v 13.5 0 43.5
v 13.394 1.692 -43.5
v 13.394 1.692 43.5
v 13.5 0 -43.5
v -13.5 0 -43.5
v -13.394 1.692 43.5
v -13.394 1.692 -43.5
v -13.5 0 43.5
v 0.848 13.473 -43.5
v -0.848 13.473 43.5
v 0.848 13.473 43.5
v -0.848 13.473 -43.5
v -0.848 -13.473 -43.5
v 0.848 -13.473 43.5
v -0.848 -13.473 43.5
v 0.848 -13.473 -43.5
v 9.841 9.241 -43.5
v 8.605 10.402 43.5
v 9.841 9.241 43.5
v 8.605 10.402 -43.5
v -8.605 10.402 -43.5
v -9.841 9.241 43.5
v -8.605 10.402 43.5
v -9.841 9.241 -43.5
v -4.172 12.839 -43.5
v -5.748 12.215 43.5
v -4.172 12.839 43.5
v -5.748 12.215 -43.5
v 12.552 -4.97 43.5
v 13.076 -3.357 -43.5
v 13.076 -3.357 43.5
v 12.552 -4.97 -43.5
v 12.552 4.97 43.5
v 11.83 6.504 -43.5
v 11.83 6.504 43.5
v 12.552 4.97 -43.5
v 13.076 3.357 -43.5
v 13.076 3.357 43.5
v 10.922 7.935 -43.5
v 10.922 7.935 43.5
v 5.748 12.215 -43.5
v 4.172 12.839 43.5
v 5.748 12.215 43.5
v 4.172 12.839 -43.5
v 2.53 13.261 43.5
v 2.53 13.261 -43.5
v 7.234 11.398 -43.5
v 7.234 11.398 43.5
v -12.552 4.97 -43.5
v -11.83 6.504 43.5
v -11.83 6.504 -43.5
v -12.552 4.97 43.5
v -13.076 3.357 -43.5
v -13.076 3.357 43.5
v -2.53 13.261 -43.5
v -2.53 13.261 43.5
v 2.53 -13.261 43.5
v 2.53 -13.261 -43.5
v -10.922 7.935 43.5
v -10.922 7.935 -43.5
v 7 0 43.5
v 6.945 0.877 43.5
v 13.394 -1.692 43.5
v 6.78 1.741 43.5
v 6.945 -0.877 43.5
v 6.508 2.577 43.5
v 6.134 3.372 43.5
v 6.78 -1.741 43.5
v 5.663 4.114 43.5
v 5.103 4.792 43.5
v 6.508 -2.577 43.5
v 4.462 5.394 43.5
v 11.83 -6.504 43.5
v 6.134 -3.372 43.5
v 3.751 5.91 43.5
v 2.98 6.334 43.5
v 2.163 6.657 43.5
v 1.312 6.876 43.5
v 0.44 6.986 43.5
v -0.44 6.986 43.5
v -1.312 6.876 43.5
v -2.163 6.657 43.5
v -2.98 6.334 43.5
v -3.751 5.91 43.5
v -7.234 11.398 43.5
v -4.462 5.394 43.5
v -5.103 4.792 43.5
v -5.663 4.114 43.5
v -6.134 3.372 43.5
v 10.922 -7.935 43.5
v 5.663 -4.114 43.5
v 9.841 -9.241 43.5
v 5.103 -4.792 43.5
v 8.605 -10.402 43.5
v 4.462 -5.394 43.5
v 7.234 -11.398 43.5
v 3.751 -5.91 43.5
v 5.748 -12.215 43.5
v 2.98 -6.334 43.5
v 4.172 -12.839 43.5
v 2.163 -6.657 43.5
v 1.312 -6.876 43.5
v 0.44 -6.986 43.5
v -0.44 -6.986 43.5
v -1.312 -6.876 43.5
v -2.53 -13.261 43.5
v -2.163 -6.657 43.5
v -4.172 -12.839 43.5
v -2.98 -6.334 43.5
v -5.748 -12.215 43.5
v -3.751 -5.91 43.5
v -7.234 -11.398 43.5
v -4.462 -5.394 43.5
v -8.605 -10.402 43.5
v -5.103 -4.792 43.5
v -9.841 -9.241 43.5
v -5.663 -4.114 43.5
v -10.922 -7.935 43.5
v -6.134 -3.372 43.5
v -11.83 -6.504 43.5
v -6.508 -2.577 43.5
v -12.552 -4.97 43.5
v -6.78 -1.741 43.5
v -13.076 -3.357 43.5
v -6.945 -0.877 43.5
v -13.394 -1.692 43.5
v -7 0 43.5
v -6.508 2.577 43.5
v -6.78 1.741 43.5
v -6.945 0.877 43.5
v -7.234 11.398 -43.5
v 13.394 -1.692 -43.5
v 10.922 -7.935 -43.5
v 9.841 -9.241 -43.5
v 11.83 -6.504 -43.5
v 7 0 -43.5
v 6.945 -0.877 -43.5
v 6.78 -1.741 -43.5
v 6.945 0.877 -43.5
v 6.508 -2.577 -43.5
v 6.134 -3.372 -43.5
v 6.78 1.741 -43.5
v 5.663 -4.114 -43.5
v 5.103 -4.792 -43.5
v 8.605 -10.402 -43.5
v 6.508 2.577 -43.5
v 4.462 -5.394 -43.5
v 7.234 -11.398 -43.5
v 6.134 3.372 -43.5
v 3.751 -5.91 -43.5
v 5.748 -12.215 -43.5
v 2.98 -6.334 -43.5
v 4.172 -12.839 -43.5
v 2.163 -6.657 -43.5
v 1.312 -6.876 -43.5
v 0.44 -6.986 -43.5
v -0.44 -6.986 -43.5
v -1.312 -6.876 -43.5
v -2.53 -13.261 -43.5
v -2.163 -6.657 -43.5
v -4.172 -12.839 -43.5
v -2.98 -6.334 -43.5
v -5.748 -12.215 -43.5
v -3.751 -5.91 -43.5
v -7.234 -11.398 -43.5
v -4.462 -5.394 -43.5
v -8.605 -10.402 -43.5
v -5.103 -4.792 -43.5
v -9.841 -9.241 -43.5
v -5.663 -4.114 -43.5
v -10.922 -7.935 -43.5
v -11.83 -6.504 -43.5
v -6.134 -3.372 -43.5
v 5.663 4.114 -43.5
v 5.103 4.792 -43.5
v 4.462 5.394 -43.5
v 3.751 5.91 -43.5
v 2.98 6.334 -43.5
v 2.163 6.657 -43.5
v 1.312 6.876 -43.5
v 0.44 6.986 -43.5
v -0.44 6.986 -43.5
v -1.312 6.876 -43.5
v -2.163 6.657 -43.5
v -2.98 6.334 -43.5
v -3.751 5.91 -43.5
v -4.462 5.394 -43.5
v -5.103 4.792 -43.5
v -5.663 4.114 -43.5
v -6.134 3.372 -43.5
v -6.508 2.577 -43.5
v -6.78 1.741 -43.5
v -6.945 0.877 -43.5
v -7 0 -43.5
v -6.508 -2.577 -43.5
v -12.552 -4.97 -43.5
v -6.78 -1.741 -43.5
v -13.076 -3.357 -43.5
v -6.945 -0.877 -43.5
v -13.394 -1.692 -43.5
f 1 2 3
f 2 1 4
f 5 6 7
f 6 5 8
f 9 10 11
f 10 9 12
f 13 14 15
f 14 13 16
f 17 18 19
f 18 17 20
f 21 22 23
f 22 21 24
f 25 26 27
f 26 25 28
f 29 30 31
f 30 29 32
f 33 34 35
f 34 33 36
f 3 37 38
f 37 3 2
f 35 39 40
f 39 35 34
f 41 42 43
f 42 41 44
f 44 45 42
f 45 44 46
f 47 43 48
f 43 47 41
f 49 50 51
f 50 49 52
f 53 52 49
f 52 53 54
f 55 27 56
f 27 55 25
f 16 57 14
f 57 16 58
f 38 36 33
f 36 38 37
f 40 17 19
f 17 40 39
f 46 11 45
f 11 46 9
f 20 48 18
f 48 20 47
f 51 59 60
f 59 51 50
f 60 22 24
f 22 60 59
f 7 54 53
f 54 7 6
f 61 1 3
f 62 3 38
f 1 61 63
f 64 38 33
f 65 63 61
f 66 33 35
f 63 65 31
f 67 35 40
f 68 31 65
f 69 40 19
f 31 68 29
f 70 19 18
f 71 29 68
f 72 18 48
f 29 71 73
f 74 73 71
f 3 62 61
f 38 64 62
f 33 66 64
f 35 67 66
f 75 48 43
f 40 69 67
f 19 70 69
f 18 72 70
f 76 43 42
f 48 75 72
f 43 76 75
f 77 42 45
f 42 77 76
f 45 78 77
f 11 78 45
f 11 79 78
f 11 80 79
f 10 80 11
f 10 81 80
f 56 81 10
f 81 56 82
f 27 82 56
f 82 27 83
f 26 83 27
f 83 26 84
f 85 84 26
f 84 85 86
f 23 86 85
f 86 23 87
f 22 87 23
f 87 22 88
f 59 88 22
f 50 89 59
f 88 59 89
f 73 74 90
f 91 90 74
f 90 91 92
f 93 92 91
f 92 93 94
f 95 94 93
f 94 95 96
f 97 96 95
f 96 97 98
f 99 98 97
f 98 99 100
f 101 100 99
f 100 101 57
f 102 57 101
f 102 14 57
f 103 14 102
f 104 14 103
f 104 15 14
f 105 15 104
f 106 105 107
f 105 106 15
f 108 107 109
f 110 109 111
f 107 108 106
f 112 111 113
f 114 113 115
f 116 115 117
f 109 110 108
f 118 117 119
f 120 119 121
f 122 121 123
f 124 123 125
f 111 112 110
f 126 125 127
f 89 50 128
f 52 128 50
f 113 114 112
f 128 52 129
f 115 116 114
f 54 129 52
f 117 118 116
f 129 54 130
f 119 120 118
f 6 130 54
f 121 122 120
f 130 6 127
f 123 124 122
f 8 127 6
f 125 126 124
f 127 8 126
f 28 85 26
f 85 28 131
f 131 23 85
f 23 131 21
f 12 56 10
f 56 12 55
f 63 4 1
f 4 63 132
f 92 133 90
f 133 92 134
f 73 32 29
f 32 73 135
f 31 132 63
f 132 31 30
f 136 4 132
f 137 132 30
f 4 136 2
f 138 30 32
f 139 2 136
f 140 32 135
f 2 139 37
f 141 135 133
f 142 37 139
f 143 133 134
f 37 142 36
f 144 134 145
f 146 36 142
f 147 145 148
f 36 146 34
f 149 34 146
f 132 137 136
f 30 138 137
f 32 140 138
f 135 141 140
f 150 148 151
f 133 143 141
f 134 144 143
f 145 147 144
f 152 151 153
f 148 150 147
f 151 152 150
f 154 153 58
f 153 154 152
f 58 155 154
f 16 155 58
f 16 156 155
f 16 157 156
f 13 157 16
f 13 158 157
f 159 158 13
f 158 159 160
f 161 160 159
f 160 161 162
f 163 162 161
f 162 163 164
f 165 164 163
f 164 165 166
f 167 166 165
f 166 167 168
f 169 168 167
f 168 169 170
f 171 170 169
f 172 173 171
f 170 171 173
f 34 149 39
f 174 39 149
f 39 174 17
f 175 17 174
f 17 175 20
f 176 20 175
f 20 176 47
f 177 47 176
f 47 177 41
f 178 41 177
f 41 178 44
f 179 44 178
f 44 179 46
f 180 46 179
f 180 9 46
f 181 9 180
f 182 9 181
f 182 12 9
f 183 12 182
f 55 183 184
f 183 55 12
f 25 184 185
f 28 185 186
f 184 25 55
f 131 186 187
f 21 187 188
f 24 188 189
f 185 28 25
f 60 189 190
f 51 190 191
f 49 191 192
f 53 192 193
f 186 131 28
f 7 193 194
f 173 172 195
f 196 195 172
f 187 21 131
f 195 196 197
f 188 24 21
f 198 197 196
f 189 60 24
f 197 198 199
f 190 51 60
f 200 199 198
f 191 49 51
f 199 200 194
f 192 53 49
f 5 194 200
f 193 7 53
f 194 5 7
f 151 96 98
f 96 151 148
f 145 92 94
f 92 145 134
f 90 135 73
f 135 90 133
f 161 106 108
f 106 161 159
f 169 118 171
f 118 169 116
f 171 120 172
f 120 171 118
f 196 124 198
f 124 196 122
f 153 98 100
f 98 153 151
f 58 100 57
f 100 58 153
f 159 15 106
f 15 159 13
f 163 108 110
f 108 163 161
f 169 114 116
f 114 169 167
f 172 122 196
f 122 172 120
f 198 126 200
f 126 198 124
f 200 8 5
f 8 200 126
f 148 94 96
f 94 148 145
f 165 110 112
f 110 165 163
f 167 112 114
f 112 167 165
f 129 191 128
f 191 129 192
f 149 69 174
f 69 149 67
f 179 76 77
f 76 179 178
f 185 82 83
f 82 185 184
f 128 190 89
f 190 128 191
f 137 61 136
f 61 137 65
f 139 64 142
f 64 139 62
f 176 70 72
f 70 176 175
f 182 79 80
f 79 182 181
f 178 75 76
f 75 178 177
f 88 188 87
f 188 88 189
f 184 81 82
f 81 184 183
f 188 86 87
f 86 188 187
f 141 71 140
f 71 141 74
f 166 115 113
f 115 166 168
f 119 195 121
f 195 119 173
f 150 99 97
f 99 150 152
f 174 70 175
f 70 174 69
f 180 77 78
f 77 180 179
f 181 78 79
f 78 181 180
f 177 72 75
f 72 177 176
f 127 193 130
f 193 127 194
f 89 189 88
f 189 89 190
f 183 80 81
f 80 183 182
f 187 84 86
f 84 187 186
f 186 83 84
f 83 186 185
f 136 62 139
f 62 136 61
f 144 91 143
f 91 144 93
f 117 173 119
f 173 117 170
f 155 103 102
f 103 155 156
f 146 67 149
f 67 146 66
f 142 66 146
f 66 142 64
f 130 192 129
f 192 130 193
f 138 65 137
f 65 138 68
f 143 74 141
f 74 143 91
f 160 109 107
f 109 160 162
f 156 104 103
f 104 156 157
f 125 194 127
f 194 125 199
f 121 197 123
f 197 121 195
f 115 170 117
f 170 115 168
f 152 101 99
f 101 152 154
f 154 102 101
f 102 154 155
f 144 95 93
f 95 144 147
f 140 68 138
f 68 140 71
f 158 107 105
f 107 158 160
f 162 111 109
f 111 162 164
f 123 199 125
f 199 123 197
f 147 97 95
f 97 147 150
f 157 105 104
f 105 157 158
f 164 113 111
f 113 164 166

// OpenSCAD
$fn = 50;


difference() {
	union() {
		translate(v = [0, 0, -43.5000000000]) {
			cylinder(h = 87, r = 13.5000000000);
		}
	}
	union() {
		translate(v = [0, 0, -100.0000000000]) {
			cylinder(h = 200, r = 7);
		}
	}
}
